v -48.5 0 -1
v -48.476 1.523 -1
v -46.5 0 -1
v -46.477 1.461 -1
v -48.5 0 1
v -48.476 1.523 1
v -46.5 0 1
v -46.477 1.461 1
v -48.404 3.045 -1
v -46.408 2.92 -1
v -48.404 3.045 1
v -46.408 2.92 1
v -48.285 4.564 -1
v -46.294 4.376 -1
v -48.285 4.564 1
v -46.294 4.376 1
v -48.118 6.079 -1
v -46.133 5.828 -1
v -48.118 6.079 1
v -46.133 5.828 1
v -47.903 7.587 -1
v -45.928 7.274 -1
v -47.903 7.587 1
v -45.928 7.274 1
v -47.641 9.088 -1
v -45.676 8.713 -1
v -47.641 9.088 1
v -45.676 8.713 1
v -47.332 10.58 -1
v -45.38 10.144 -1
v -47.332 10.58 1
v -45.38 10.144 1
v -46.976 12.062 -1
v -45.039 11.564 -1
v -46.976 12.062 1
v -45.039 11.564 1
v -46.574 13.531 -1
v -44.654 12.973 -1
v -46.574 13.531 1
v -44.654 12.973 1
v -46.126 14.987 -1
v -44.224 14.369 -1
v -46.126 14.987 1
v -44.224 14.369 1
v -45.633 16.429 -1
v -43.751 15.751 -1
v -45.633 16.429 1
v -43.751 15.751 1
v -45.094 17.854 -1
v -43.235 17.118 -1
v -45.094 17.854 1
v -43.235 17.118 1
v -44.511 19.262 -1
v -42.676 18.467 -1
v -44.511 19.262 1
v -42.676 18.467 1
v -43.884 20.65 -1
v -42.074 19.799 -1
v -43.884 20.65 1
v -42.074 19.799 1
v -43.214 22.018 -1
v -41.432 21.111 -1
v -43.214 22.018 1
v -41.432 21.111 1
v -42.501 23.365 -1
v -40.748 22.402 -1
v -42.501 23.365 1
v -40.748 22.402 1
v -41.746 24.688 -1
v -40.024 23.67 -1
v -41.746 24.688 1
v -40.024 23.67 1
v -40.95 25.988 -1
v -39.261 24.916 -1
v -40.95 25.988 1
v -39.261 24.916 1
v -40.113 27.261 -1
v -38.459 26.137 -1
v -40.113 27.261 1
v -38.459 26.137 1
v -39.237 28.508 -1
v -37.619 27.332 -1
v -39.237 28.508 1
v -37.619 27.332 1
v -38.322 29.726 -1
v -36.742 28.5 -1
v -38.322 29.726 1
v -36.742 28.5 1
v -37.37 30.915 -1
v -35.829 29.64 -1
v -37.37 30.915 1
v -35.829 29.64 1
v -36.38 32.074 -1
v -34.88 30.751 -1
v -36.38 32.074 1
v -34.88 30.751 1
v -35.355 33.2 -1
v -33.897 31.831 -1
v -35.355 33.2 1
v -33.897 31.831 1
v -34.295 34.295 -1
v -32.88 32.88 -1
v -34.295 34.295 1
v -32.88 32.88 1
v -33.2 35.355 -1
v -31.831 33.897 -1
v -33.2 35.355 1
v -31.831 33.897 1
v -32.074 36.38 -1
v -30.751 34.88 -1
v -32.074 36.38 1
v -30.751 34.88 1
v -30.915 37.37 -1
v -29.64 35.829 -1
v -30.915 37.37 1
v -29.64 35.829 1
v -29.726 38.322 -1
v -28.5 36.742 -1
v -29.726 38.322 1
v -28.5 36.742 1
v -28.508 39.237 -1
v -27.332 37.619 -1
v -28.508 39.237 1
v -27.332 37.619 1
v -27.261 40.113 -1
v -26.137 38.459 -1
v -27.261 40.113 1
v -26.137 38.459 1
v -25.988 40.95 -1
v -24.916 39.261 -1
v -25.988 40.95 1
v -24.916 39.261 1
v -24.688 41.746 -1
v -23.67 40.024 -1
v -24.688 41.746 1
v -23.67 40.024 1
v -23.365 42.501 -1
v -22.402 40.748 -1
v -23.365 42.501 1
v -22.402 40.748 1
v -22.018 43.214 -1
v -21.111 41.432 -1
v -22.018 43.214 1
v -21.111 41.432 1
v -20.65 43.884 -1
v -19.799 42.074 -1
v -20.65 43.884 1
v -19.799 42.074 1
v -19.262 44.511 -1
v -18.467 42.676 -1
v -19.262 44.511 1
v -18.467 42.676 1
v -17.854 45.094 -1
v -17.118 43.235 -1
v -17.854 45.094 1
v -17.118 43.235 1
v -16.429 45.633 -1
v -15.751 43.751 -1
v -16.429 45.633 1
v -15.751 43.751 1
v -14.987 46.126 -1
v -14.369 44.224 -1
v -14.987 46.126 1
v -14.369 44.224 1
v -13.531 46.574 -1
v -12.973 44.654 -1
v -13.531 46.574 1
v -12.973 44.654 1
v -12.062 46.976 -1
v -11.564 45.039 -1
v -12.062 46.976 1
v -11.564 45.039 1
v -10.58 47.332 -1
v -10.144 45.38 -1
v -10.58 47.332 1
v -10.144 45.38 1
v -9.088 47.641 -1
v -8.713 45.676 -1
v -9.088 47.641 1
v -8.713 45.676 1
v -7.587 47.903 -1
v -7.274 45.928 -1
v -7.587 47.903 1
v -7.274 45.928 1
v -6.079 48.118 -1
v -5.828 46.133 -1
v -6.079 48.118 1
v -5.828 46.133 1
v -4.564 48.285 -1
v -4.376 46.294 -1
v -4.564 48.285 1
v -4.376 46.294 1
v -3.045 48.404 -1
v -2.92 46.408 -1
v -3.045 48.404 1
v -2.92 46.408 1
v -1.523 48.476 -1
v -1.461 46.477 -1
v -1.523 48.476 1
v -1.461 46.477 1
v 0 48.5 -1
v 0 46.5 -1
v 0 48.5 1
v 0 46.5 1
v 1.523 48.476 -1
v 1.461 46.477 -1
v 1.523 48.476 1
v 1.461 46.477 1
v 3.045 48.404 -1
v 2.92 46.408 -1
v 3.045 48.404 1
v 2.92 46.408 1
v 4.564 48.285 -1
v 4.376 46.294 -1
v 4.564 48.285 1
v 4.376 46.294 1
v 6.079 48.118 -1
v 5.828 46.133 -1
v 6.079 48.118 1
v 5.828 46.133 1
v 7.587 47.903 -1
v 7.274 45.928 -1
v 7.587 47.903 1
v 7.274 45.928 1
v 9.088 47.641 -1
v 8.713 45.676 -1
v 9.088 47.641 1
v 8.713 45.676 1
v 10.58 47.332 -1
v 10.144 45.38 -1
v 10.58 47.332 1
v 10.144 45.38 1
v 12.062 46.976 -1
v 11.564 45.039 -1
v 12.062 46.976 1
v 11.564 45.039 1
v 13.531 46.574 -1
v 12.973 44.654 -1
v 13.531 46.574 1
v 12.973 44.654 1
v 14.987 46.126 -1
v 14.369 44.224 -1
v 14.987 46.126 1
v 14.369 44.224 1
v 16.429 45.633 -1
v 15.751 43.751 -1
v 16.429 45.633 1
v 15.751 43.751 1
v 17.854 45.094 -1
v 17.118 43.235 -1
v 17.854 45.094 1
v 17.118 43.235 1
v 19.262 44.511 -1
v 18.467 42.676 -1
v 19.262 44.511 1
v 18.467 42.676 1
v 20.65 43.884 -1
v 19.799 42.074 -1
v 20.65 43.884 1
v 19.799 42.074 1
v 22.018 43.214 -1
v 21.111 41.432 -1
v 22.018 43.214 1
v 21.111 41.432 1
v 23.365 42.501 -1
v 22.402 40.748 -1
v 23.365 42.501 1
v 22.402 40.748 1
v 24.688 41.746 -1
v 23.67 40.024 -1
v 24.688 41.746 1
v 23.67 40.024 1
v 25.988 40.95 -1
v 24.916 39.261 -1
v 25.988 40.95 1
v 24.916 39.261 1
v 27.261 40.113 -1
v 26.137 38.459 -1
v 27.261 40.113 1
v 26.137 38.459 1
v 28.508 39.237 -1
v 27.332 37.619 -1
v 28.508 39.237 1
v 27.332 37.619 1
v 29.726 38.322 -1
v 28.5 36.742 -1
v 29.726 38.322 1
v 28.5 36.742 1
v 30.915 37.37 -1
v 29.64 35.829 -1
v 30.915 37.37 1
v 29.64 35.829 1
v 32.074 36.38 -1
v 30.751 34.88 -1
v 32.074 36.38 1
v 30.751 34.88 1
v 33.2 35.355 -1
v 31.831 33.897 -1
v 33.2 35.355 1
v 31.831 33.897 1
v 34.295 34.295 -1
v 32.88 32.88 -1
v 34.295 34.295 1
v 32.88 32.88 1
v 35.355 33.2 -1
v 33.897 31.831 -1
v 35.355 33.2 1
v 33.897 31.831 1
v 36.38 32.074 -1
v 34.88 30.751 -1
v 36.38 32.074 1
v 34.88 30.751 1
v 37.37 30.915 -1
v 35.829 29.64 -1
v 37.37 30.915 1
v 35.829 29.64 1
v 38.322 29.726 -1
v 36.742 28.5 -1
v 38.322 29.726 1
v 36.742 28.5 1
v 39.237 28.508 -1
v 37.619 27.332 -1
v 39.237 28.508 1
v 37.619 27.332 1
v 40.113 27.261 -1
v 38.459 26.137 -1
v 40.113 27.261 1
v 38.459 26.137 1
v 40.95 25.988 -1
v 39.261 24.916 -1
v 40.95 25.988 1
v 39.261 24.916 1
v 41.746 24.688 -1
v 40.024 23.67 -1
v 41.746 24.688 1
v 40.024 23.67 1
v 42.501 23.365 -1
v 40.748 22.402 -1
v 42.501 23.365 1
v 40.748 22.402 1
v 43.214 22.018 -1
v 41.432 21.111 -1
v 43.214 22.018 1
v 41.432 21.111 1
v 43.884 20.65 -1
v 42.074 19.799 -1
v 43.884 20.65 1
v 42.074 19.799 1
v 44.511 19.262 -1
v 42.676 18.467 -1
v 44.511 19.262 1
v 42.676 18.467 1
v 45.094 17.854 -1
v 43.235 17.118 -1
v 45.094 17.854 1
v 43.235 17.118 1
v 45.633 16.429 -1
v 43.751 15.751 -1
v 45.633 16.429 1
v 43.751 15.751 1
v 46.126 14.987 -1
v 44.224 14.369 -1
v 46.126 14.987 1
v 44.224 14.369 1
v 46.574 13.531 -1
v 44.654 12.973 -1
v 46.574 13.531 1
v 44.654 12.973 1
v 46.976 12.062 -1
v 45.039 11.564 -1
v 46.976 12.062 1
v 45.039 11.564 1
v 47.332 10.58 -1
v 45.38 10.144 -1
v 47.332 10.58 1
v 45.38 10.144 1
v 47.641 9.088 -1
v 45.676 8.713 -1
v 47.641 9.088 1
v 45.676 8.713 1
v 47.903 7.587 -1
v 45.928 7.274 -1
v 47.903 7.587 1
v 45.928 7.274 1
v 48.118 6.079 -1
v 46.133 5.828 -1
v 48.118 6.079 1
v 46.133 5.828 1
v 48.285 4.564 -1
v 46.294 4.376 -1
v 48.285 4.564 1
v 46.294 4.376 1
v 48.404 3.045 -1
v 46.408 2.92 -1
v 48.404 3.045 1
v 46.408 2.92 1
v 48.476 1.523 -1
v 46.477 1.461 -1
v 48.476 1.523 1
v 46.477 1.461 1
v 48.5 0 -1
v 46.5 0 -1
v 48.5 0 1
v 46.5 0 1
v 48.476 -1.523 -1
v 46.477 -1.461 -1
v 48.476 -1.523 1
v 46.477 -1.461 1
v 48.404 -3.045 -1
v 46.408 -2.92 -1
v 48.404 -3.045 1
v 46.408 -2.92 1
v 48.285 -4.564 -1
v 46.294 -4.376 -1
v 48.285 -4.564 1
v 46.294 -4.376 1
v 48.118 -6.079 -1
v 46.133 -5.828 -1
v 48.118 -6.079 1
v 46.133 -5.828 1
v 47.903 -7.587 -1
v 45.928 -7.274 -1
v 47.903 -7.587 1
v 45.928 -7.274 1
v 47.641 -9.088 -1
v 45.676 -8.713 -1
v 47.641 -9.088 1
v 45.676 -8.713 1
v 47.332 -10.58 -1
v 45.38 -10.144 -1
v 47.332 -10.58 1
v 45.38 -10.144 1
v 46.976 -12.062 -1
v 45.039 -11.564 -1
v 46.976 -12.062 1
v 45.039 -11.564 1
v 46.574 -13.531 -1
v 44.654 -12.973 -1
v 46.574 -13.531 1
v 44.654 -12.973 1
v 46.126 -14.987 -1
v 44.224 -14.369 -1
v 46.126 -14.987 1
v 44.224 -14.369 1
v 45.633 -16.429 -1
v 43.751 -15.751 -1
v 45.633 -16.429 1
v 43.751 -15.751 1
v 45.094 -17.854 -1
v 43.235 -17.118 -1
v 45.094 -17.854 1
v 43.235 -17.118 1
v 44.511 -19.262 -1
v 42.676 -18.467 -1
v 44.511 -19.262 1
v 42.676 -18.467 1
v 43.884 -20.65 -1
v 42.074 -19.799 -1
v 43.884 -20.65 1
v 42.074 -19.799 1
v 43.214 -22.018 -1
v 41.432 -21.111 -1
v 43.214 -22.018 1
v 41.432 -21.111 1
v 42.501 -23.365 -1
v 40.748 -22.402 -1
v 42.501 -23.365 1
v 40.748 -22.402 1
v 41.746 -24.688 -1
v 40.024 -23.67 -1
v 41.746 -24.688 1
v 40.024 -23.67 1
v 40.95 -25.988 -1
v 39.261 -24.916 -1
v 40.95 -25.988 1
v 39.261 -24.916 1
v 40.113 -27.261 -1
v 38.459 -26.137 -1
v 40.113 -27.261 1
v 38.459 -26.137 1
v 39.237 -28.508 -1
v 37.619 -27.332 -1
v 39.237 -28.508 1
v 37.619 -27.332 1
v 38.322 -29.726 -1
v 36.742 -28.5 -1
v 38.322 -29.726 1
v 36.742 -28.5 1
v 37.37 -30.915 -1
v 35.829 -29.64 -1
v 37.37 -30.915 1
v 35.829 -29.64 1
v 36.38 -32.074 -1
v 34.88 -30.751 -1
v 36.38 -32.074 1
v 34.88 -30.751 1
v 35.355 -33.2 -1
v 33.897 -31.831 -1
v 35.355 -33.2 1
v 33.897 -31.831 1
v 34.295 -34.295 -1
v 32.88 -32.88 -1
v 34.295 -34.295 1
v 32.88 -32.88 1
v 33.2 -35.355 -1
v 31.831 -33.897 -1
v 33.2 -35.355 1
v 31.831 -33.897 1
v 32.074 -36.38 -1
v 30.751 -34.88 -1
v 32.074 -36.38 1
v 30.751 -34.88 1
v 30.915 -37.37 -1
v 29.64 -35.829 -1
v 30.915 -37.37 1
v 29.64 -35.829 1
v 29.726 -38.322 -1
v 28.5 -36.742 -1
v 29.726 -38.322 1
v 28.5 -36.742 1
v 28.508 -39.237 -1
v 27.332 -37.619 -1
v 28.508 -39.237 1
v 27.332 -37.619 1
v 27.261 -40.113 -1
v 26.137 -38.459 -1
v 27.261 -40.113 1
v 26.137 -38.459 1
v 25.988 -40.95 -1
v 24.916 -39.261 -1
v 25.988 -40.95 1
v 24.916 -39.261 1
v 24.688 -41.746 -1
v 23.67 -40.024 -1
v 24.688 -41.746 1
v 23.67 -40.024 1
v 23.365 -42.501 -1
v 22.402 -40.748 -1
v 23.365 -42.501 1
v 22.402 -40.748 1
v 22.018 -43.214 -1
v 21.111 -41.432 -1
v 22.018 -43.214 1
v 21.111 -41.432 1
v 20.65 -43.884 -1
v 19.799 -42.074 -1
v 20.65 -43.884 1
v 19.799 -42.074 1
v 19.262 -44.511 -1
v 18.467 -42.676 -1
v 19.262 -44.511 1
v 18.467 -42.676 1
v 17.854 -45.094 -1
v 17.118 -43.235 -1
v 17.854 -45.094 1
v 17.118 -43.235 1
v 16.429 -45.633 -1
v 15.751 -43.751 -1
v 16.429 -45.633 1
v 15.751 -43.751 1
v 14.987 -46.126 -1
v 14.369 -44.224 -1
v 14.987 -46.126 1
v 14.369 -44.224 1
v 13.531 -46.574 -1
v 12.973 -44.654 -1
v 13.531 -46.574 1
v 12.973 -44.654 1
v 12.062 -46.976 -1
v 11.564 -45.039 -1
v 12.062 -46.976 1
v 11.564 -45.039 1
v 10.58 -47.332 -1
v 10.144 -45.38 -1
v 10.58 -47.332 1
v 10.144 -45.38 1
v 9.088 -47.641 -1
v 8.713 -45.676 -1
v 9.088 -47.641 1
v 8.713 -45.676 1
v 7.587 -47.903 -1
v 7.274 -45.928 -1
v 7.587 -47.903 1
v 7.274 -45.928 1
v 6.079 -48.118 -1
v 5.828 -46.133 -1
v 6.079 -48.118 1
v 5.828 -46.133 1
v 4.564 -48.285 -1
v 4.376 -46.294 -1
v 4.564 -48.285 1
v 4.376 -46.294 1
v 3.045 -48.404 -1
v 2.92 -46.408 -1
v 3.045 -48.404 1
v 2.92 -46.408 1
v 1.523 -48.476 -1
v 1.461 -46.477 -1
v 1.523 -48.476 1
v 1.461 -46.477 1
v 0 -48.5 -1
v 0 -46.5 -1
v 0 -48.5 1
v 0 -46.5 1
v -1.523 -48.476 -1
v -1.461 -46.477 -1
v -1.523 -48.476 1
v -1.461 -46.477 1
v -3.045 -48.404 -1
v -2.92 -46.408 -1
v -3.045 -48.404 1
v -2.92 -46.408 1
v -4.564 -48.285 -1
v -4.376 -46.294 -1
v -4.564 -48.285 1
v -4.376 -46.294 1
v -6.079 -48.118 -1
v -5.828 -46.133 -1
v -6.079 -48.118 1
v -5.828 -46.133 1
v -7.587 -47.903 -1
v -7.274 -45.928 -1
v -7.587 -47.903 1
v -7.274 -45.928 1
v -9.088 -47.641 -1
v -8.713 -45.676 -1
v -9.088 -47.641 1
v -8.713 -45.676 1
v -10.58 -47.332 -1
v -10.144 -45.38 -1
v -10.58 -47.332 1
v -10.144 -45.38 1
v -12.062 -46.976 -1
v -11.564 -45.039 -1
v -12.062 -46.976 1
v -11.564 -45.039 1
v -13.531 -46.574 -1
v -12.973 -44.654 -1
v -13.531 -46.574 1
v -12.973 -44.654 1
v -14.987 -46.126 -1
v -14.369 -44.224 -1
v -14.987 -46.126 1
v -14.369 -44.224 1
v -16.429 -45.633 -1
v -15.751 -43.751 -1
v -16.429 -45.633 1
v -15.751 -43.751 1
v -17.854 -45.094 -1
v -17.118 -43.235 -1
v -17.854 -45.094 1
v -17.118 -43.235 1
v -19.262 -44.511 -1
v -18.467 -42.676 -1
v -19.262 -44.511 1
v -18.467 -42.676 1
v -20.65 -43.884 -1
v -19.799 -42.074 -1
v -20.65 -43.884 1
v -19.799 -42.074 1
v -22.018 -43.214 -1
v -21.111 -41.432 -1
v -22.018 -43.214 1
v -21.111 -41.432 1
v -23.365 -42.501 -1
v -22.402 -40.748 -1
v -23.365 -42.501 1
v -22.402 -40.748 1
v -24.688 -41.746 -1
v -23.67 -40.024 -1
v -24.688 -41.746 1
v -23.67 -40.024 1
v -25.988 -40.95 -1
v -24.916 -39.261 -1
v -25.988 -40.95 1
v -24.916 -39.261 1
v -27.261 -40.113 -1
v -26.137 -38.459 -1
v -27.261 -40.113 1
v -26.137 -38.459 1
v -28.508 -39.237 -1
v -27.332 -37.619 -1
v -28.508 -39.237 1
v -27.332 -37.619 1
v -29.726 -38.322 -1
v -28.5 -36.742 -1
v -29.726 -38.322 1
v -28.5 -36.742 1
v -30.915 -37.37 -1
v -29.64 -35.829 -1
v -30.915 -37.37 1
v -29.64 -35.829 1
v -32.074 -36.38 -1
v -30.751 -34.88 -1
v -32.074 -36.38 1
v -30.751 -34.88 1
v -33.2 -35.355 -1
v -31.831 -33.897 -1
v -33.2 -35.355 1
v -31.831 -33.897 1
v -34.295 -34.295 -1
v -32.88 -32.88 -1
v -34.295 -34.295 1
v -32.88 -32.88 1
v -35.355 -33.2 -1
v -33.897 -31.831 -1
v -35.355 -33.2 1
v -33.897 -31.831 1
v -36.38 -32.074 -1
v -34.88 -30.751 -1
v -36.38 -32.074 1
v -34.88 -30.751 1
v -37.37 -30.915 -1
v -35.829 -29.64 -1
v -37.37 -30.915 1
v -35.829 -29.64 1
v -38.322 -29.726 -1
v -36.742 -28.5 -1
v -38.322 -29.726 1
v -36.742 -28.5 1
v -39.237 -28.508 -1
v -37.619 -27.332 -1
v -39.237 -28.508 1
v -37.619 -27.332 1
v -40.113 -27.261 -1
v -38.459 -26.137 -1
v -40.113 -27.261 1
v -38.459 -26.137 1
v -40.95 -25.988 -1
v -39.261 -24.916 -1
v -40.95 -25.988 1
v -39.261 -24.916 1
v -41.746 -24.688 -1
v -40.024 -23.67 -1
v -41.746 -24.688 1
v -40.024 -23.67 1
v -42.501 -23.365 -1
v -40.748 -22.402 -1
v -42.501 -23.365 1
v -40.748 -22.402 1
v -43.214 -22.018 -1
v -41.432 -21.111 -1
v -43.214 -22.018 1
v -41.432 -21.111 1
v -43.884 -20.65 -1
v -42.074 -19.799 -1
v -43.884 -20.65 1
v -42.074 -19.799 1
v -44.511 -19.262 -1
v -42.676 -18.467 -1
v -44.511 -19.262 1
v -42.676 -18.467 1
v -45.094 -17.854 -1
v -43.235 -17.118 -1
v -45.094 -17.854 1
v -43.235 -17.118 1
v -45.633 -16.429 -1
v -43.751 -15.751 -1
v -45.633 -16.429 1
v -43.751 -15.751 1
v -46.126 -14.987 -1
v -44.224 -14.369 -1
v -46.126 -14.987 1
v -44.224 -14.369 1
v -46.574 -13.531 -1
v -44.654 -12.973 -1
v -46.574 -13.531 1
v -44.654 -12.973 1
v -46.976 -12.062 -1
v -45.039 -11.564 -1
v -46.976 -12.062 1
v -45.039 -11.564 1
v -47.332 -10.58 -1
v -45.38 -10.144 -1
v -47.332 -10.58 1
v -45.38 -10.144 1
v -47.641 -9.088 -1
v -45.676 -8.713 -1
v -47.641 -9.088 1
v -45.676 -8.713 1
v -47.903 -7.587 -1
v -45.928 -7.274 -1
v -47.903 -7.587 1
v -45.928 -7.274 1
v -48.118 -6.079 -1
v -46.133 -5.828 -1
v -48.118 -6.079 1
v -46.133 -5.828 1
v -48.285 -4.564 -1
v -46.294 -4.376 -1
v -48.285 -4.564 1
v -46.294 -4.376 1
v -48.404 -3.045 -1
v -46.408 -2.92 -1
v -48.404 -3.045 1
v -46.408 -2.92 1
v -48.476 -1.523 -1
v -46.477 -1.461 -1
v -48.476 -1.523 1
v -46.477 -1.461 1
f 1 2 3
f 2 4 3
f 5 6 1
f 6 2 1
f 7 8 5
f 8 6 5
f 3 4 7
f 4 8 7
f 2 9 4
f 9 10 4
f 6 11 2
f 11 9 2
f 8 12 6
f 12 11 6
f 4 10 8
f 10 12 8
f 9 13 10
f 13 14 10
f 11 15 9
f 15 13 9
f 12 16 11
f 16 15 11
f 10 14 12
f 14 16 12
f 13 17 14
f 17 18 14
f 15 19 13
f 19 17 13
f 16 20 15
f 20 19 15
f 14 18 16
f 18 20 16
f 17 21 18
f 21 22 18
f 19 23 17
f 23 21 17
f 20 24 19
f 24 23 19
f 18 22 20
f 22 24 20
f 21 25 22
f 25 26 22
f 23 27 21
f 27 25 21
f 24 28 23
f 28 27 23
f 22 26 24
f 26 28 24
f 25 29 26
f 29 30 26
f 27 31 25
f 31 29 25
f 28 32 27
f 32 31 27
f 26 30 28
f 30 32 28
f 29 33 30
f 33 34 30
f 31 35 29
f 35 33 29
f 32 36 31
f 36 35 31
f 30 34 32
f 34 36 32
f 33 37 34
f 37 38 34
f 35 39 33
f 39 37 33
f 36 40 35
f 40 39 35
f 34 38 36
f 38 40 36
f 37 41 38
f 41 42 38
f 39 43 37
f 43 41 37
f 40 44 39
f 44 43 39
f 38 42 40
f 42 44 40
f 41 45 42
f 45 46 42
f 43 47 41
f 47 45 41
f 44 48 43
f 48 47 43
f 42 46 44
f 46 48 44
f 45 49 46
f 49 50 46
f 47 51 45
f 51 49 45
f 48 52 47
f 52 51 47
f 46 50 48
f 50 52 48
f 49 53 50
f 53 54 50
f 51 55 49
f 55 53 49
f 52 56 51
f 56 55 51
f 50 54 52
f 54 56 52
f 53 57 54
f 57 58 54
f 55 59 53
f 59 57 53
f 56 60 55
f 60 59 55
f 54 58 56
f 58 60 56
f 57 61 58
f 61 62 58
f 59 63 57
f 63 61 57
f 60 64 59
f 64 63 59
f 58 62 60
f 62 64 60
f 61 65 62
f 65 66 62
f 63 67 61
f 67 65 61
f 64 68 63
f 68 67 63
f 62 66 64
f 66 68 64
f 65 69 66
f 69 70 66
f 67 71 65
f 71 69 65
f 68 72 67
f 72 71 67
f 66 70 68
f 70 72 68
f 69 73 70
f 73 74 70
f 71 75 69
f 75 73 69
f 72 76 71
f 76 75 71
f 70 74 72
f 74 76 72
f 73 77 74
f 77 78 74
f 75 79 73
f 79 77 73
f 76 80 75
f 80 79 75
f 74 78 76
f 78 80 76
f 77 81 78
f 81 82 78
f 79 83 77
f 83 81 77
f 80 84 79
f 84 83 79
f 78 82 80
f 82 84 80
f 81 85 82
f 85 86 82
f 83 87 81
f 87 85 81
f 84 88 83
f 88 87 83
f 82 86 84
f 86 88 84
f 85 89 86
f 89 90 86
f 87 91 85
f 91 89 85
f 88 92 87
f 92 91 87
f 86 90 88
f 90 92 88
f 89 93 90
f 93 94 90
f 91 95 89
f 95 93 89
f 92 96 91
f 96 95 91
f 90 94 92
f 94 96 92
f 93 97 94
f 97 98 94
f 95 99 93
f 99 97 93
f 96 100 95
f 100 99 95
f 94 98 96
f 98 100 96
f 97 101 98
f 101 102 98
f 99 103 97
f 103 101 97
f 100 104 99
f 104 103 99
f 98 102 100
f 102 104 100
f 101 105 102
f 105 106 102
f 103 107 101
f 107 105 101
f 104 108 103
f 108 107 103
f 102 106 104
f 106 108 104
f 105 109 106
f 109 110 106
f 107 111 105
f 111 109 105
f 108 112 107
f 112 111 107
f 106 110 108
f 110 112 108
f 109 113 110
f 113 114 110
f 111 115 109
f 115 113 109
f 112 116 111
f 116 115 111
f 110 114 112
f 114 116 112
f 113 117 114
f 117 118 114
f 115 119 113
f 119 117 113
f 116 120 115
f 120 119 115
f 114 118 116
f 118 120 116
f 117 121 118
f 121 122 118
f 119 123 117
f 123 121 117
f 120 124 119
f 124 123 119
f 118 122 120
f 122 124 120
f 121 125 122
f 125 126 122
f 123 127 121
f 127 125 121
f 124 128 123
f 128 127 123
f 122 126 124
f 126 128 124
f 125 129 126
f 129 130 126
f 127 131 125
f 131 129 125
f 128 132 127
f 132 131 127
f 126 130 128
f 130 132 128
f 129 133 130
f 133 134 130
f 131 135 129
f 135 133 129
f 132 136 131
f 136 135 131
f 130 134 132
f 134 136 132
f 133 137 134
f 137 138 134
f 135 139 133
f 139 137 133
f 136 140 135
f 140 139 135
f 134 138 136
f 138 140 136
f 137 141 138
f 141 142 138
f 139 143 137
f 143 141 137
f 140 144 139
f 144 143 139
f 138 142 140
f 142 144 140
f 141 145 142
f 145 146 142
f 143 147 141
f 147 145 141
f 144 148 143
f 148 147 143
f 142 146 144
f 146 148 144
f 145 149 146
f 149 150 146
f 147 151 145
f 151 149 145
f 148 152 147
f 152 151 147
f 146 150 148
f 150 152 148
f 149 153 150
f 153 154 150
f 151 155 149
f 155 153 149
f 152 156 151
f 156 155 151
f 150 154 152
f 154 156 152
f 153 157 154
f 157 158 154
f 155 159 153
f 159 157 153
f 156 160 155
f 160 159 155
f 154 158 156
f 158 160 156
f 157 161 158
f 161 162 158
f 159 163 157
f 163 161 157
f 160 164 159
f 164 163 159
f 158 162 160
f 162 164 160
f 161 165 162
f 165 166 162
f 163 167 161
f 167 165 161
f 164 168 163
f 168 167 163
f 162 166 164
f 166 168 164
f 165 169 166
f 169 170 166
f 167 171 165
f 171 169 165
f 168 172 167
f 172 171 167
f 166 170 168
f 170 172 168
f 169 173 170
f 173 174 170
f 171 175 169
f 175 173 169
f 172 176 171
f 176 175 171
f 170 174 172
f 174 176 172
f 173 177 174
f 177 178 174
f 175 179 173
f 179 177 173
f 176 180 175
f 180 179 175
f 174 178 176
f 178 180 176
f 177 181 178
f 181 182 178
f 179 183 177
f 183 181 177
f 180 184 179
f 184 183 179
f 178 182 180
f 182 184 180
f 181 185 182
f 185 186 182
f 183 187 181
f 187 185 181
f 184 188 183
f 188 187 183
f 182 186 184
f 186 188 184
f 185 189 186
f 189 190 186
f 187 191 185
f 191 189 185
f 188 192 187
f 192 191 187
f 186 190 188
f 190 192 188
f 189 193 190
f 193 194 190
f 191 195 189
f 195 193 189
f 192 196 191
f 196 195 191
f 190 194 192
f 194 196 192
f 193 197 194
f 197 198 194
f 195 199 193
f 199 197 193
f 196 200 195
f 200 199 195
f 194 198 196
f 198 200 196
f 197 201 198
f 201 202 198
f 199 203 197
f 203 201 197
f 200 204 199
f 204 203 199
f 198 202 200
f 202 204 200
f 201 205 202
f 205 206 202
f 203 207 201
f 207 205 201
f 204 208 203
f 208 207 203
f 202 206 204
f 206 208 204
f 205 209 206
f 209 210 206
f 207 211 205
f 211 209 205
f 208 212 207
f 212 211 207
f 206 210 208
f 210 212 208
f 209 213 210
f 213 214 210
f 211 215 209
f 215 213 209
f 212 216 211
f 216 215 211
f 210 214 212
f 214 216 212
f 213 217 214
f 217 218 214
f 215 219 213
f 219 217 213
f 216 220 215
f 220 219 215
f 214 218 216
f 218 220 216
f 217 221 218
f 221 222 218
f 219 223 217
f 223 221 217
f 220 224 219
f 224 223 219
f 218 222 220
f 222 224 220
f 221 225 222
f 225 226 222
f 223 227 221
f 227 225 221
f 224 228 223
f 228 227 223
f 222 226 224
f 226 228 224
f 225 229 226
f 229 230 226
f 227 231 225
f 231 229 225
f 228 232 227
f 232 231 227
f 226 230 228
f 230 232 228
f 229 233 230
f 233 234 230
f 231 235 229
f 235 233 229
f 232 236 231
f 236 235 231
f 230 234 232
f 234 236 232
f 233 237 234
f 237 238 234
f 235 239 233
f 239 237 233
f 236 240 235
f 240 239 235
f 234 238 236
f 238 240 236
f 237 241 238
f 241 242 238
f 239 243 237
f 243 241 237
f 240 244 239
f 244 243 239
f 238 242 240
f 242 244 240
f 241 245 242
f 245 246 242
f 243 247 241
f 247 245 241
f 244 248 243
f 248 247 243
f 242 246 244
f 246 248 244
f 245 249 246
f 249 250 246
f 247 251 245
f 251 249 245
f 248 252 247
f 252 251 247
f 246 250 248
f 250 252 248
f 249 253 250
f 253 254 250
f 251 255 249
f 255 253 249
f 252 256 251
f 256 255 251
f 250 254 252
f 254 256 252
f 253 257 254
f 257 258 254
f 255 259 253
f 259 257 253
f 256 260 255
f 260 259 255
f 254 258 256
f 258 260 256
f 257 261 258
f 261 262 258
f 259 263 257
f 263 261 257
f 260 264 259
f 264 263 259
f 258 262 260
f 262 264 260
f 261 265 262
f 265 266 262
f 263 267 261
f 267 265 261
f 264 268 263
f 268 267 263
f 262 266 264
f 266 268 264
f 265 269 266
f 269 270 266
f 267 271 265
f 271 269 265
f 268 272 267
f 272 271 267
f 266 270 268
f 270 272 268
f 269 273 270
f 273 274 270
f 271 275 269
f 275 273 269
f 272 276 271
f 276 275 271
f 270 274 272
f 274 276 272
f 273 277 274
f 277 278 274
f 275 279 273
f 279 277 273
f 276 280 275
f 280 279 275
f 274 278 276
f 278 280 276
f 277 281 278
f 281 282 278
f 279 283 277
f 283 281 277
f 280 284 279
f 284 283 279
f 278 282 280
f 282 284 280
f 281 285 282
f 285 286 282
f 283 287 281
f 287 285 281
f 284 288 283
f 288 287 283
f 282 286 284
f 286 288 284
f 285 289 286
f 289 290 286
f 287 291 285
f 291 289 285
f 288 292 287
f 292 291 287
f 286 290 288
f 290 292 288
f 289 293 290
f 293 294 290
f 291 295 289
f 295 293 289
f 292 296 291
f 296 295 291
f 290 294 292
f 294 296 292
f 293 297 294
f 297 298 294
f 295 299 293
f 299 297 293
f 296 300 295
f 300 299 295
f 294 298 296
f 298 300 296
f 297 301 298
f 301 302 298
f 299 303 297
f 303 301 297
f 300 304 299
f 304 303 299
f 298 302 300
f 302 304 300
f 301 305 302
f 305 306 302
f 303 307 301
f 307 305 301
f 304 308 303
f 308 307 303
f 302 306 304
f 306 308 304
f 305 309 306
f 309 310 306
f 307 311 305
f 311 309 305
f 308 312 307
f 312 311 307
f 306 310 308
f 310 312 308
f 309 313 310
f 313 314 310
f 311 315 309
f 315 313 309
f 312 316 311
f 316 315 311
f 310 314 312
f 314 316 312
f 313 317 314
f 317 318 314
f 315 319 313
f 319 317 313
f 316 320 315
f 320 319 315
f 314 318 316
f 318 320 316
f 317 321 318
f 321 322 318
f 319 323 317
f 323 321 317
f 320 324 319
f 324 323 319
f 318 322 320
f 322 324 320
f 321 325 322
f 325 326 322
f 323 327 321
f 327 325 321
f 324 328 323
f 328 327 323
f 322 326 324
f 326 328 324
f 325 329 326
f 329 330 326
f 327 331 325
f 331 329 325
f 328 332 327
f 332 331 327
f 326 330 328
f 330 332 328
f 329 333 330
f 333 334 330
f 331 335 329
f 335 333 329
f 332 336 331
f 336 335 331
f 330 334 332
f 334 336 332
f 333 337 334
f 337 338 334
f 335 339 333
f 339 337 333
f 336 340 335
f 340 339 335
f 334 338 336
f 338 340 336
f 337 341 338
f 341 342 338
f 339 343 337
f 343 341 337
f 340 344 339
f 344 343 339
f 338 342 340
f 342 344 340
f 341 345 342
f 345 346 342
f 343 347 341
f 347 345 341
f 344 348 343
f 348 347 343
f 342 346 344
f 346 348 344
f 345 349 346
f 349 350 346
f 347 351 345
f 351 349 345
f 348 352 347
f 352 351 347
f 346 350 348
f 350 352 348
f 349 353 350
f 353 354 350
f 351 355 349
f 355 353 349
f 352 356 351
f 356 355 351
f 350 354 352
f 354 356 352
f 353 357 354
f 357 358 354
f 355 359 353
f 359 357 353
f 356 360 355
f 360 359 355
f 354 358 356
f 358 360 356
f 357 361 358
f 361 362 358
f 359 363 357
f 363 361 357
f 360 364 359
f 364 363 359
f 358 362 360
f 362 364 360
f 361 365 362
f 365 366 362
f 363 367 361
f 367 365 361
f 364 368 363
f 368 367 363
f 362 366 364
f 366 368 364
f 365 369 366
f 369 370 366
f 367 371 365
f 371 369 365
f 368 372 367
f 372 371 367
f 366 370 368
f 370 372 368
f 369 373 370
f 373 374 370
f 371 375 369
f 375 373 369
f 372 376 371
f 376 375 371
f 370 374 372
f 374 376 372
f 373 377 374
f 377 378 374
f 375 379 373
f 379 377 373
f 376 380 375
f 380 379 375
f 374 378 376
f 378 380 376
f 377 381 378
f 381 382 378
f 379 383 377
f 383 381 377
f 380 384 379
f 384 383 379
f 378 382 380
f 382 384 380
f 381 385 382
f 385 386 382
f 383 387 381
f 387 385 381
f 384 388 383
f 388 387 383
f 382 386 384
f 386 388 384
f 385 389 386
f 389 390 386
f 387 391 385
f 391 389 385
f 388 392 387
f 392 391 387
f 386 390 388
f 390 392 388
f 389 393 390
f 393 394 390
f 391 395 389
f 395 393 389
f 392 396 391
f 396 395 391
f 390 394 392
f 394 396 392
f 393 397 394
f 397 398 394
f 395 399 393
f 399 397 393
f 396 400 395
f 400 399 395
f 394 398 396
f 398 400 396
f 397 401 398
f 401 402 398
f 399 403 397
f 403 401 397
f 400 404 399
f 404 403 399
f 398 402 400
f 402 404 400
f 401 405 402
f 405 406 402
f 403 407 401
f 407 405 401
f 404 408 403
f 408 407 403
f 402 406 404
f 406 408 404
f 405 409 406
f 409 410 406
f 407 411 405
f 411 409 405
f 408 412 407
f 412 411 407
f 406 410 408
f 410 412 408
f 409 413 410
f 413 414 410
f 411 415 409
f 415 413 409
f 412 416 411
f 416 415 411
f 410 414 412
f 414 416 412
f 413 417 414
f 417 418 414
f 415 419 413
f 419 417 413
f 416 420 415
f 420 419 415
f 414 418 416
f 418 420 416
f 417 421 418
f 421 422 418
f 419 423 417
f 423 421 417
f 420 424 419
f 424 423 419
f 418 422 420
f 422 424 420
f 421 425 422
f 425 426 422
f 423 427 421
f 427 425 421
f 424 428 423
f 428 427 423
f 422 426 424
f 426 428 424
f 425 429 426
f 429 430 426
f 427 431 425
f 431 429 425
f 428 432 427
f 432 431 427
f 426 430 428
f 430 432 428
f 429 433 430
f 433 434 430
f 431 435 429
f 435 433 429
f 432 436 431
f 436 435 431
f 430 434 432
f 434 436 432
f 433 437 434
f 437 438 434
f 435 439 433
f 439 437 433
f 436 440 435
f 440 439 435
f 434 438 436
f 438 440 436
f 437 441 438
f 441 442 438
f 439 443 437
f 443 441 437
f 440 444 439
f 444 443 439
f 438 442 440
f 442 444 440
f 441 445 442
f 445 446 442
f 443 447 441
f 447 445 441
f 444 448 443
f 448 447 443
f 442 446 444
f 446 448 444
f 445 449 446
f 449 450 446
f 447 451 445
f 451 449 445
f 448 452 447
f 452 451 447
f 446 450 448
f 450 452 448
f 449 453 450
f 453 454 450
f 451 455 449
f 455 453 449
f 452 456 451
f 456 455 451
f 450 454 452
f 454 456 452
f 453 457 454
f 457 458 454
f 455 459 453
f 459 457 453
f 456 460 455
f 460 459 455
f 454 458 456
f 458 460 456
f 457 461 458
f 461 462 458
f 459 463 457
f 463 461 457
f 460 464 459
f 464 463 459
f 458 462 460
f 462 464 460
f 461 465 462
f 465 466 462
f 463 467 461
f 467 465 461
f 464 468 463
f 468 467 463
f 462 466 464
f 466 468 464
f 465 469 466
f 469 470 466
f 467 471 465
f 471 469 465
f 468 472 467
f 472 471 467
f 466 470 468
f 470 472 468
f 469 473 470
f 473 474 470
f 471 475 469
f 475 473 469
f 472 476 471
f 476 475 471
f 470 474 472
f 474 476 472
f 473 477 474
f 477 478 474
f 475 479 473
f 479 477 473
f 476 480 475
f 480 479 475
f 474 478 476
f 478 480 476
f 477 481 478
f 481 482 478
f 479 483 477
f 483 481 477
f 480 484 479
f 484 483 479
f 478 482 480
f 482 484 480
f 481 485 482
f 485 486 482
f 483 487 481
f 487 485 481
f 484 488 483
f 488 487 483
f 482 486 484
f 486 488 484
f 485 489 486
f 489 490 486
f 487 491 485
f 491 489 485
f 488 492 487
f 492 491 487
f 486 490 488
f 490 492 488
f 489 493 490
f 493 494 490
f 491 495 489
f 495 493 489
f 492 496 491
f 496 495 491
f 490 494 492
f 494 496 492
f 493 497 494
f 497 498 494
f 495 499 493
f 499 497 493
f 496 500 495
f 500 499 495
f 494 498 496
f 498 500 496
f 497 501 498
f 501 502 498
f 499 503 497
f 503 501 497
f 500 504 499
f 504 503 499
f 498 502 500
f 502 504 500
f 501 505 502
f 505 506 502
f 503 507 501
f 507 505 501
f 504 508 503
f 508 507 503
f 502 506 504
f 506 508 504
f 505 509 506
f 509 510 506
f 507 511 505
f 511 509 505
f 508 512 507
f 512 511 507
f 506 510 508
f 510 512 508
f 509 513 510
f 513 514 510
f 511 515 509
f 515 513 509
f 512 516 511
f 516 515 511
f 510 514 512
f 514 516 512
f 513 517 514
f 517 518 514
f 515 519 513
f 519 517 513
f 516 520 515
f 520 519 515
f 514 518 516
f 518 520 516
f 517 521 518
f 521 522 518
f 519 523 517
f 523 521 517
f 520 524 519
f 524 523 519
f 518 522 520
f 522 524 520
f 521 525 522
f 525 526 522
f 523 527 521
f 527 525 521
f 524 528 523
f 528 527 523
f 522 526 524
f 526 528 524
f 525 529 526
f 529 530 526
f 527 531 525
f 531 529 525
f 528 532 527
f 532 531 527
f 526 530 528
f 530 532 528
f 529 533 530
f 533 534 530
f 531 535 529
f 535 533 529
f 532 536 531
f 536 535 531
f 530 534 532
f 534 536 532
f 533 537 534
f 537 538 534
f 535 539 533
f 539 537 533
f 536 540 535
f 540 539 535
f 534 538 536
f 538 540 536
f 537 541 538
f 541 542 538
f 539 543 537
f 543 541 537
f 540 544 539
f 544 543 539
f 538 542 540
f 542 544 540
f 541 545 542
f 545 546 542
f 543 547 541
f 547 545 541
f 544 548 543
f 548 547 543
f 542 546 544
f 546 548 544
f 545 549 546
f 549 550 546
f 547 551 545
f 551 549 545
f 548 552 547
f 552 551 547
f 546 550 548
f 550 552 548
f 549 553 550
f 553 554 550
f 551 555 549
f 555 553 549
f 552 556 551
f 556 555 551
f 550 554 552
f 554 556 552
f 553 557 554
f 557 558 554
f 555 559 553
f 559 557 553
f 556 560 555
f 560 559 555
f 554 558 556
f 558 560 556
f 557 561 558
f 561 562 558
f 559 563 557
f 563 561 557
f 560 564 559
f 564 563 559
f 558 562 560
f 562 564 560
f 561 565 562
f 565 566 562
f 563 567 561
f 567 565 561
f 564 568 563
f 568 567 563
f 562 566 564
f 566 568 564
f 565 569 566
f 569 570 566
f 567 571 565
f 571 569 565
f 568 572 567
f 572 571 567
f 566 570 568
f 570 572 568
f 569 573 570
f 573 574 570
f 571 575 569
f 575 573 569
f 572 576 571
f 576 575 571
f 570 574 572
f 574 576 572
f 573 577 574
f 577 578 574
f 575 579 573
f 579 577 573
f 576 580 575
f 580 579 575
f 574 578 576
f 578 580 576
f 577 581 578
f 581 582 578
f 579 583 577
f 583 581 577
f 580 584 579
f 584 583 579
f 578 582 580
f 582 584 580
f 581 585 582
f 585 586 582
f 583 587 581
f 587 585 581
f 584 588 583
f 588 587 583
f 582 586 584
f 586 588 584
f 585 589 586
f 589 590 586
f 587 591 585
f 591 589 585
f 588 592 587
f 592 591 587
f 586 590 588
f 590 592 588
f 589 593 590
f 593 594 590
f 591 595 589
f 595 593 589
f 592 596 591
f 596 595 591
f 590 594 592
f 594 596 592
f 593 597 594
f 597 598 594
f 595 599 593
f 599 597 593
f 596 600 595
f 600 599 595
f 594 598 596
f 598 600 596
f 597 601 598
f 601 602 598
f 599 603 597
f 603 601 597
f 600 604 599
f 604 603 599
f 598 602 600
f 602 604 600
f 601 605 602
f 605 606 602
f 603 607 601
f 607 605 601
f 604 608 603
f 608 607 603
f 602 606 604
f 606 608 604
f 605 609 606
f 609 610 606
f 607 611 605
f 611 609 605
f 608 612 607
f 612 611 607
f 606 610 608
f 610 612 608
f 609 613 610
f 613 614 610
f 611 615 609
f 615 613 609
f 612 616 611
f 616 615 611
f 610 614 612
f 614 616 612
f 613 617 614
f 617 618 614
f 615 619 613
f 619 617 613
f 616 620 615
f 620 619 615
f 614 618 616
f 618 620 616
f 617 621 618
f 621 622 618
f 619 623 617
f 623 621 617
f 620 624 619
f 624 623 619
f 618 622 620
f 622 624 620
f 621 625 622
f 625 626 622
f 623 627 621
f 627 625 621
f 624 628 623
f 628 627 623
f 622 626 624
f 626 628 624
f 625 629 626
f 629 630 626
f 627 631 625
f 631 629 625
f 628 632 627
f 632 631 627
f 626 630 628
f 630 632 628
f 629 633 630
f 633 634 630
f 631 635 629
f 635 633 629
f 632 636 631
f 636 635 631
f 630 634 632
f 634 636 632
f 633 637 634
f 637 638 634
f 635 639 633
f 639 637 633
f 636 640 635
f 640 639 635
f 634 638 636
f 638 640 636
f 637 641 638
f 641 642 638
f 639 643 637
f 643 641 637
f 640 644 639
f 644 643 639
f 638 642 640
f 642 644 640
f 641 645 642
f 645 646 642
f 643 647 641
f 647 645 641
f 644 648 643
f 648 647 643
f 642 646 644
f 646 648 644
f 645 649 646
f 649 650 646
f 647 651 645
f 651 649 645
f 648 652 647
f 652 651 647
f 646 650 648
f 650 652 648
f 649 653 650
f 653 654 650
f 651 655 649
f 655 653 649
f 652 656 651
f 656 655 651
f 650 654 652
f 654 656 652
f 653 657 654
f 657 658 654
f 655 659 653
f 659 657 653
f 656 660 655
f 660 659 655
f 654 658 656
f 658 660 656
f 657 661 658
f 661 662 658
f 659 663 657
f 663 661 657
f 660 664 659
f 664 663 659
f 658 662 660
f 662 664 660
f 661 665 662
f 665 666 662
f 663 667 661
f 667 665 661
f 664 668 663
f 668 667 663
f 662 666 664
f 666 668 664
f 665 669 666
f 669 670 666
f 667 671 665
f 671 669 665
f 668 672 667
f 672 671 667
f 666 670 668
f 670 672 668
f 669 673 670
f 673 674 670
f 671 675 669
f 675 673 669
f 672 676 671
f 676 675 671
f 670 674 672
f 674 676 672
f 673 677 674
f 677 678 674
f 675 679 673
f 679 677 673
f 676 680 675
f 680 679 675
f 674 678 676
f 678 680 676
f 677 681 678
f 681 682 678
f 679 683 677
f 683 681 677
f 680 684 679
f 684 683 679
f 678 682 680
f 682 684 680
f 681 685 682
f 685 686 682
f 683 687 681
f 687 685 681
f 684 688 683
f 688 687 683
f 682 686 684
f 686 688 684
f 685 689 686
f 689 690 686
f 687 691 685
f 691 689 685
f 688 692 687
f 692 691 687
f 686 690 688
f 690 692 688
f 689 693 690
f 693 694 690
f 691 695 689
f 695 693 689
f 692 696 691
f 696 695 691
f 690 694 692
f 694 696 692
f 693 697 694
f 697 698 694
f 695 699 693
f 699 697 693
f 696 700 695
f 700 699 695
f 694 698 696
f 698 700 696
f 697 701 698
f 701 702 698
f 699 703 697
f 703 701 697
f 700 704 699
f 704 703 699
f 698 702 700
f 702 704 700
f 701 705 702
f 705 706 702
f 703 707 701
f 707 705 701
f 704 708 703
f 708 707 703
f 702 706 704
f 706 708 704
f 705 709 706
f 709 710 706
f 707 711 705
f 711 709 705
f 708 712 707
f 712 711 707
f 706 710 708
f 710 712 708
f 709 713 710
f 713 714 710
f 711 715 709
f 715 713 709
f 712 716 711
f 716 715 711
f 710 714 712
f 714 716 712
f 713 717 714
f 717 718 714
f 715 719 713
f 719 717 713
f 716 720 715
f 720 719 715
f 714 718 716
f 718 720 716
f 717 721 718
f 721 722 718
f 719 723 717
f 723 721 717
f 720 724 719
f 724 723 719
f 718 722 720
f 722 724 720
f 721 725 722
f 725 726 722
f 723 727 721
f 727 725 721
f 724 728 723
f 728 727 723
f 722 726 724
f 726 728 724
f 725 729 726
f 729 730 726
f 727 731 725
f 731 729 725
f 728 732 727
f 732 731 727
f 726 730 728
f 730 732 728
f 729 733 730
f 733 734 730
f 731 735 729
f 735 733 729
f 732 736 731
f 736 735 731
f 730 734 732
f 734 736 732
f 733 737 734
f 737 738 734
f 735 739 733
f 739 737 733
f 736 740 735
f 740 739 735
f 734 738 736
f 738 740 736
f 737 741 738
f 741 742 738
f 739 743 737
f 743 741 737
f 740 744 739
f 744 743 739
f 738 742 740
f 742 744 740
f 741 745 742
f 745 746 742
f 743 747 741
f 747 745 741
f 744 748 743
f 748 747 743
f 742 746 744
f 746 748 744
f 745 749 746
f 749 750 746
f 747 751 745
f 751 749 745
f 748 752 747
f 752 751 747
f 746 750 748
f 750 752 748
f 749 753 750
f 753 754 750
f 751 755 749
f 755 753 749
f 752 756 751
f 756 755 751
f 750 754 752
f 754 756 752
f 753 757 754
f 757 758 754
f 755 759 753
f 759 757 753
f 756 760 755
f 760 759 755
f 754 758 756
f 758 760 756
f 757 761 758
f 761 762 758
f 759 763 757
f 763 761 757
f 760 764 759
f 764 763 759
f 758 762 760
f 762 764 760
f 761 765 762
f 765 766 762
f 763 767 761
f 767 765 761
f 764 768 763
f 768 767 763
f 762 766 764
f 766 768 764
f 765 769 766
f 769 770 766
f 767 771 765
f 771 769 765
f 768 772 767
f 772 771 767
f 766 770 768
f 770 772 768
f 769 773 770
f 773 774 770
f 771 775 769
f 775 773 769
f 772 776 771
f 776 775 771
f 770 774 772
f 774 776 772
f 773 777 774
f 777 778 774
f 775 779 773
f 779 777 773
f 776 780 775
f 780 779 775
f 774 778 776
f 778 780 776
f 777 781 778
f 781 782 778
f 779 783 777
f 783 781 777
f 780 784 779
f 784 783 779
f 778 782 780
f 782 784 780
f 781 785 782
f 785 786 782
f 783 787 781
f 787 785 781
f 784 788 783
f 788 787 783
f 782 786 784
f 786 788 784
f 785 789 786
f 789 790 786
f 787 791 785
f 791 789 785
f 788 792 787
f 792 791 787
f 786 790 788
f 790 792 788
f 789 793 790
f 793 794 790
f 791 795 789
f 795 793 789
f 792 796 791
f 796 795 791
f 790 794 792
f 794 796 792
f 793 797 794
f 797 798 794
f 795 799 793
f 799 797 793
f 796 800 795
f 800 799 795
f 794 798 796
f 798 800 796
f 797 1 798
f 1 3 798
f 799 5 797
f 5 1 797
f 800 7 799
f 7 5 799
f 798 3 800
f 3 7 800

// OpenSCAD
// TABLE WARS - Equator Bumper Ring (TPU 95A)
// Friction-fits into groove around shell seam

/* [Dimensions] */
inner_diameter = 95;      // mm (matches shell diameter)
cross_section = 2;        // mm (square profile: 2×2mm)

/* [Resolution] */
$fn = 200; // Higher resolution for smooth ring

module bumper_ring() {
    // Torus-like ring with square cross-section
    rotate_extrude(convexity = 10)
        translate([inner_diameter/2, 0, 0])
            square([cross_section, cross_section], center = true);
}

bumper_ring();
